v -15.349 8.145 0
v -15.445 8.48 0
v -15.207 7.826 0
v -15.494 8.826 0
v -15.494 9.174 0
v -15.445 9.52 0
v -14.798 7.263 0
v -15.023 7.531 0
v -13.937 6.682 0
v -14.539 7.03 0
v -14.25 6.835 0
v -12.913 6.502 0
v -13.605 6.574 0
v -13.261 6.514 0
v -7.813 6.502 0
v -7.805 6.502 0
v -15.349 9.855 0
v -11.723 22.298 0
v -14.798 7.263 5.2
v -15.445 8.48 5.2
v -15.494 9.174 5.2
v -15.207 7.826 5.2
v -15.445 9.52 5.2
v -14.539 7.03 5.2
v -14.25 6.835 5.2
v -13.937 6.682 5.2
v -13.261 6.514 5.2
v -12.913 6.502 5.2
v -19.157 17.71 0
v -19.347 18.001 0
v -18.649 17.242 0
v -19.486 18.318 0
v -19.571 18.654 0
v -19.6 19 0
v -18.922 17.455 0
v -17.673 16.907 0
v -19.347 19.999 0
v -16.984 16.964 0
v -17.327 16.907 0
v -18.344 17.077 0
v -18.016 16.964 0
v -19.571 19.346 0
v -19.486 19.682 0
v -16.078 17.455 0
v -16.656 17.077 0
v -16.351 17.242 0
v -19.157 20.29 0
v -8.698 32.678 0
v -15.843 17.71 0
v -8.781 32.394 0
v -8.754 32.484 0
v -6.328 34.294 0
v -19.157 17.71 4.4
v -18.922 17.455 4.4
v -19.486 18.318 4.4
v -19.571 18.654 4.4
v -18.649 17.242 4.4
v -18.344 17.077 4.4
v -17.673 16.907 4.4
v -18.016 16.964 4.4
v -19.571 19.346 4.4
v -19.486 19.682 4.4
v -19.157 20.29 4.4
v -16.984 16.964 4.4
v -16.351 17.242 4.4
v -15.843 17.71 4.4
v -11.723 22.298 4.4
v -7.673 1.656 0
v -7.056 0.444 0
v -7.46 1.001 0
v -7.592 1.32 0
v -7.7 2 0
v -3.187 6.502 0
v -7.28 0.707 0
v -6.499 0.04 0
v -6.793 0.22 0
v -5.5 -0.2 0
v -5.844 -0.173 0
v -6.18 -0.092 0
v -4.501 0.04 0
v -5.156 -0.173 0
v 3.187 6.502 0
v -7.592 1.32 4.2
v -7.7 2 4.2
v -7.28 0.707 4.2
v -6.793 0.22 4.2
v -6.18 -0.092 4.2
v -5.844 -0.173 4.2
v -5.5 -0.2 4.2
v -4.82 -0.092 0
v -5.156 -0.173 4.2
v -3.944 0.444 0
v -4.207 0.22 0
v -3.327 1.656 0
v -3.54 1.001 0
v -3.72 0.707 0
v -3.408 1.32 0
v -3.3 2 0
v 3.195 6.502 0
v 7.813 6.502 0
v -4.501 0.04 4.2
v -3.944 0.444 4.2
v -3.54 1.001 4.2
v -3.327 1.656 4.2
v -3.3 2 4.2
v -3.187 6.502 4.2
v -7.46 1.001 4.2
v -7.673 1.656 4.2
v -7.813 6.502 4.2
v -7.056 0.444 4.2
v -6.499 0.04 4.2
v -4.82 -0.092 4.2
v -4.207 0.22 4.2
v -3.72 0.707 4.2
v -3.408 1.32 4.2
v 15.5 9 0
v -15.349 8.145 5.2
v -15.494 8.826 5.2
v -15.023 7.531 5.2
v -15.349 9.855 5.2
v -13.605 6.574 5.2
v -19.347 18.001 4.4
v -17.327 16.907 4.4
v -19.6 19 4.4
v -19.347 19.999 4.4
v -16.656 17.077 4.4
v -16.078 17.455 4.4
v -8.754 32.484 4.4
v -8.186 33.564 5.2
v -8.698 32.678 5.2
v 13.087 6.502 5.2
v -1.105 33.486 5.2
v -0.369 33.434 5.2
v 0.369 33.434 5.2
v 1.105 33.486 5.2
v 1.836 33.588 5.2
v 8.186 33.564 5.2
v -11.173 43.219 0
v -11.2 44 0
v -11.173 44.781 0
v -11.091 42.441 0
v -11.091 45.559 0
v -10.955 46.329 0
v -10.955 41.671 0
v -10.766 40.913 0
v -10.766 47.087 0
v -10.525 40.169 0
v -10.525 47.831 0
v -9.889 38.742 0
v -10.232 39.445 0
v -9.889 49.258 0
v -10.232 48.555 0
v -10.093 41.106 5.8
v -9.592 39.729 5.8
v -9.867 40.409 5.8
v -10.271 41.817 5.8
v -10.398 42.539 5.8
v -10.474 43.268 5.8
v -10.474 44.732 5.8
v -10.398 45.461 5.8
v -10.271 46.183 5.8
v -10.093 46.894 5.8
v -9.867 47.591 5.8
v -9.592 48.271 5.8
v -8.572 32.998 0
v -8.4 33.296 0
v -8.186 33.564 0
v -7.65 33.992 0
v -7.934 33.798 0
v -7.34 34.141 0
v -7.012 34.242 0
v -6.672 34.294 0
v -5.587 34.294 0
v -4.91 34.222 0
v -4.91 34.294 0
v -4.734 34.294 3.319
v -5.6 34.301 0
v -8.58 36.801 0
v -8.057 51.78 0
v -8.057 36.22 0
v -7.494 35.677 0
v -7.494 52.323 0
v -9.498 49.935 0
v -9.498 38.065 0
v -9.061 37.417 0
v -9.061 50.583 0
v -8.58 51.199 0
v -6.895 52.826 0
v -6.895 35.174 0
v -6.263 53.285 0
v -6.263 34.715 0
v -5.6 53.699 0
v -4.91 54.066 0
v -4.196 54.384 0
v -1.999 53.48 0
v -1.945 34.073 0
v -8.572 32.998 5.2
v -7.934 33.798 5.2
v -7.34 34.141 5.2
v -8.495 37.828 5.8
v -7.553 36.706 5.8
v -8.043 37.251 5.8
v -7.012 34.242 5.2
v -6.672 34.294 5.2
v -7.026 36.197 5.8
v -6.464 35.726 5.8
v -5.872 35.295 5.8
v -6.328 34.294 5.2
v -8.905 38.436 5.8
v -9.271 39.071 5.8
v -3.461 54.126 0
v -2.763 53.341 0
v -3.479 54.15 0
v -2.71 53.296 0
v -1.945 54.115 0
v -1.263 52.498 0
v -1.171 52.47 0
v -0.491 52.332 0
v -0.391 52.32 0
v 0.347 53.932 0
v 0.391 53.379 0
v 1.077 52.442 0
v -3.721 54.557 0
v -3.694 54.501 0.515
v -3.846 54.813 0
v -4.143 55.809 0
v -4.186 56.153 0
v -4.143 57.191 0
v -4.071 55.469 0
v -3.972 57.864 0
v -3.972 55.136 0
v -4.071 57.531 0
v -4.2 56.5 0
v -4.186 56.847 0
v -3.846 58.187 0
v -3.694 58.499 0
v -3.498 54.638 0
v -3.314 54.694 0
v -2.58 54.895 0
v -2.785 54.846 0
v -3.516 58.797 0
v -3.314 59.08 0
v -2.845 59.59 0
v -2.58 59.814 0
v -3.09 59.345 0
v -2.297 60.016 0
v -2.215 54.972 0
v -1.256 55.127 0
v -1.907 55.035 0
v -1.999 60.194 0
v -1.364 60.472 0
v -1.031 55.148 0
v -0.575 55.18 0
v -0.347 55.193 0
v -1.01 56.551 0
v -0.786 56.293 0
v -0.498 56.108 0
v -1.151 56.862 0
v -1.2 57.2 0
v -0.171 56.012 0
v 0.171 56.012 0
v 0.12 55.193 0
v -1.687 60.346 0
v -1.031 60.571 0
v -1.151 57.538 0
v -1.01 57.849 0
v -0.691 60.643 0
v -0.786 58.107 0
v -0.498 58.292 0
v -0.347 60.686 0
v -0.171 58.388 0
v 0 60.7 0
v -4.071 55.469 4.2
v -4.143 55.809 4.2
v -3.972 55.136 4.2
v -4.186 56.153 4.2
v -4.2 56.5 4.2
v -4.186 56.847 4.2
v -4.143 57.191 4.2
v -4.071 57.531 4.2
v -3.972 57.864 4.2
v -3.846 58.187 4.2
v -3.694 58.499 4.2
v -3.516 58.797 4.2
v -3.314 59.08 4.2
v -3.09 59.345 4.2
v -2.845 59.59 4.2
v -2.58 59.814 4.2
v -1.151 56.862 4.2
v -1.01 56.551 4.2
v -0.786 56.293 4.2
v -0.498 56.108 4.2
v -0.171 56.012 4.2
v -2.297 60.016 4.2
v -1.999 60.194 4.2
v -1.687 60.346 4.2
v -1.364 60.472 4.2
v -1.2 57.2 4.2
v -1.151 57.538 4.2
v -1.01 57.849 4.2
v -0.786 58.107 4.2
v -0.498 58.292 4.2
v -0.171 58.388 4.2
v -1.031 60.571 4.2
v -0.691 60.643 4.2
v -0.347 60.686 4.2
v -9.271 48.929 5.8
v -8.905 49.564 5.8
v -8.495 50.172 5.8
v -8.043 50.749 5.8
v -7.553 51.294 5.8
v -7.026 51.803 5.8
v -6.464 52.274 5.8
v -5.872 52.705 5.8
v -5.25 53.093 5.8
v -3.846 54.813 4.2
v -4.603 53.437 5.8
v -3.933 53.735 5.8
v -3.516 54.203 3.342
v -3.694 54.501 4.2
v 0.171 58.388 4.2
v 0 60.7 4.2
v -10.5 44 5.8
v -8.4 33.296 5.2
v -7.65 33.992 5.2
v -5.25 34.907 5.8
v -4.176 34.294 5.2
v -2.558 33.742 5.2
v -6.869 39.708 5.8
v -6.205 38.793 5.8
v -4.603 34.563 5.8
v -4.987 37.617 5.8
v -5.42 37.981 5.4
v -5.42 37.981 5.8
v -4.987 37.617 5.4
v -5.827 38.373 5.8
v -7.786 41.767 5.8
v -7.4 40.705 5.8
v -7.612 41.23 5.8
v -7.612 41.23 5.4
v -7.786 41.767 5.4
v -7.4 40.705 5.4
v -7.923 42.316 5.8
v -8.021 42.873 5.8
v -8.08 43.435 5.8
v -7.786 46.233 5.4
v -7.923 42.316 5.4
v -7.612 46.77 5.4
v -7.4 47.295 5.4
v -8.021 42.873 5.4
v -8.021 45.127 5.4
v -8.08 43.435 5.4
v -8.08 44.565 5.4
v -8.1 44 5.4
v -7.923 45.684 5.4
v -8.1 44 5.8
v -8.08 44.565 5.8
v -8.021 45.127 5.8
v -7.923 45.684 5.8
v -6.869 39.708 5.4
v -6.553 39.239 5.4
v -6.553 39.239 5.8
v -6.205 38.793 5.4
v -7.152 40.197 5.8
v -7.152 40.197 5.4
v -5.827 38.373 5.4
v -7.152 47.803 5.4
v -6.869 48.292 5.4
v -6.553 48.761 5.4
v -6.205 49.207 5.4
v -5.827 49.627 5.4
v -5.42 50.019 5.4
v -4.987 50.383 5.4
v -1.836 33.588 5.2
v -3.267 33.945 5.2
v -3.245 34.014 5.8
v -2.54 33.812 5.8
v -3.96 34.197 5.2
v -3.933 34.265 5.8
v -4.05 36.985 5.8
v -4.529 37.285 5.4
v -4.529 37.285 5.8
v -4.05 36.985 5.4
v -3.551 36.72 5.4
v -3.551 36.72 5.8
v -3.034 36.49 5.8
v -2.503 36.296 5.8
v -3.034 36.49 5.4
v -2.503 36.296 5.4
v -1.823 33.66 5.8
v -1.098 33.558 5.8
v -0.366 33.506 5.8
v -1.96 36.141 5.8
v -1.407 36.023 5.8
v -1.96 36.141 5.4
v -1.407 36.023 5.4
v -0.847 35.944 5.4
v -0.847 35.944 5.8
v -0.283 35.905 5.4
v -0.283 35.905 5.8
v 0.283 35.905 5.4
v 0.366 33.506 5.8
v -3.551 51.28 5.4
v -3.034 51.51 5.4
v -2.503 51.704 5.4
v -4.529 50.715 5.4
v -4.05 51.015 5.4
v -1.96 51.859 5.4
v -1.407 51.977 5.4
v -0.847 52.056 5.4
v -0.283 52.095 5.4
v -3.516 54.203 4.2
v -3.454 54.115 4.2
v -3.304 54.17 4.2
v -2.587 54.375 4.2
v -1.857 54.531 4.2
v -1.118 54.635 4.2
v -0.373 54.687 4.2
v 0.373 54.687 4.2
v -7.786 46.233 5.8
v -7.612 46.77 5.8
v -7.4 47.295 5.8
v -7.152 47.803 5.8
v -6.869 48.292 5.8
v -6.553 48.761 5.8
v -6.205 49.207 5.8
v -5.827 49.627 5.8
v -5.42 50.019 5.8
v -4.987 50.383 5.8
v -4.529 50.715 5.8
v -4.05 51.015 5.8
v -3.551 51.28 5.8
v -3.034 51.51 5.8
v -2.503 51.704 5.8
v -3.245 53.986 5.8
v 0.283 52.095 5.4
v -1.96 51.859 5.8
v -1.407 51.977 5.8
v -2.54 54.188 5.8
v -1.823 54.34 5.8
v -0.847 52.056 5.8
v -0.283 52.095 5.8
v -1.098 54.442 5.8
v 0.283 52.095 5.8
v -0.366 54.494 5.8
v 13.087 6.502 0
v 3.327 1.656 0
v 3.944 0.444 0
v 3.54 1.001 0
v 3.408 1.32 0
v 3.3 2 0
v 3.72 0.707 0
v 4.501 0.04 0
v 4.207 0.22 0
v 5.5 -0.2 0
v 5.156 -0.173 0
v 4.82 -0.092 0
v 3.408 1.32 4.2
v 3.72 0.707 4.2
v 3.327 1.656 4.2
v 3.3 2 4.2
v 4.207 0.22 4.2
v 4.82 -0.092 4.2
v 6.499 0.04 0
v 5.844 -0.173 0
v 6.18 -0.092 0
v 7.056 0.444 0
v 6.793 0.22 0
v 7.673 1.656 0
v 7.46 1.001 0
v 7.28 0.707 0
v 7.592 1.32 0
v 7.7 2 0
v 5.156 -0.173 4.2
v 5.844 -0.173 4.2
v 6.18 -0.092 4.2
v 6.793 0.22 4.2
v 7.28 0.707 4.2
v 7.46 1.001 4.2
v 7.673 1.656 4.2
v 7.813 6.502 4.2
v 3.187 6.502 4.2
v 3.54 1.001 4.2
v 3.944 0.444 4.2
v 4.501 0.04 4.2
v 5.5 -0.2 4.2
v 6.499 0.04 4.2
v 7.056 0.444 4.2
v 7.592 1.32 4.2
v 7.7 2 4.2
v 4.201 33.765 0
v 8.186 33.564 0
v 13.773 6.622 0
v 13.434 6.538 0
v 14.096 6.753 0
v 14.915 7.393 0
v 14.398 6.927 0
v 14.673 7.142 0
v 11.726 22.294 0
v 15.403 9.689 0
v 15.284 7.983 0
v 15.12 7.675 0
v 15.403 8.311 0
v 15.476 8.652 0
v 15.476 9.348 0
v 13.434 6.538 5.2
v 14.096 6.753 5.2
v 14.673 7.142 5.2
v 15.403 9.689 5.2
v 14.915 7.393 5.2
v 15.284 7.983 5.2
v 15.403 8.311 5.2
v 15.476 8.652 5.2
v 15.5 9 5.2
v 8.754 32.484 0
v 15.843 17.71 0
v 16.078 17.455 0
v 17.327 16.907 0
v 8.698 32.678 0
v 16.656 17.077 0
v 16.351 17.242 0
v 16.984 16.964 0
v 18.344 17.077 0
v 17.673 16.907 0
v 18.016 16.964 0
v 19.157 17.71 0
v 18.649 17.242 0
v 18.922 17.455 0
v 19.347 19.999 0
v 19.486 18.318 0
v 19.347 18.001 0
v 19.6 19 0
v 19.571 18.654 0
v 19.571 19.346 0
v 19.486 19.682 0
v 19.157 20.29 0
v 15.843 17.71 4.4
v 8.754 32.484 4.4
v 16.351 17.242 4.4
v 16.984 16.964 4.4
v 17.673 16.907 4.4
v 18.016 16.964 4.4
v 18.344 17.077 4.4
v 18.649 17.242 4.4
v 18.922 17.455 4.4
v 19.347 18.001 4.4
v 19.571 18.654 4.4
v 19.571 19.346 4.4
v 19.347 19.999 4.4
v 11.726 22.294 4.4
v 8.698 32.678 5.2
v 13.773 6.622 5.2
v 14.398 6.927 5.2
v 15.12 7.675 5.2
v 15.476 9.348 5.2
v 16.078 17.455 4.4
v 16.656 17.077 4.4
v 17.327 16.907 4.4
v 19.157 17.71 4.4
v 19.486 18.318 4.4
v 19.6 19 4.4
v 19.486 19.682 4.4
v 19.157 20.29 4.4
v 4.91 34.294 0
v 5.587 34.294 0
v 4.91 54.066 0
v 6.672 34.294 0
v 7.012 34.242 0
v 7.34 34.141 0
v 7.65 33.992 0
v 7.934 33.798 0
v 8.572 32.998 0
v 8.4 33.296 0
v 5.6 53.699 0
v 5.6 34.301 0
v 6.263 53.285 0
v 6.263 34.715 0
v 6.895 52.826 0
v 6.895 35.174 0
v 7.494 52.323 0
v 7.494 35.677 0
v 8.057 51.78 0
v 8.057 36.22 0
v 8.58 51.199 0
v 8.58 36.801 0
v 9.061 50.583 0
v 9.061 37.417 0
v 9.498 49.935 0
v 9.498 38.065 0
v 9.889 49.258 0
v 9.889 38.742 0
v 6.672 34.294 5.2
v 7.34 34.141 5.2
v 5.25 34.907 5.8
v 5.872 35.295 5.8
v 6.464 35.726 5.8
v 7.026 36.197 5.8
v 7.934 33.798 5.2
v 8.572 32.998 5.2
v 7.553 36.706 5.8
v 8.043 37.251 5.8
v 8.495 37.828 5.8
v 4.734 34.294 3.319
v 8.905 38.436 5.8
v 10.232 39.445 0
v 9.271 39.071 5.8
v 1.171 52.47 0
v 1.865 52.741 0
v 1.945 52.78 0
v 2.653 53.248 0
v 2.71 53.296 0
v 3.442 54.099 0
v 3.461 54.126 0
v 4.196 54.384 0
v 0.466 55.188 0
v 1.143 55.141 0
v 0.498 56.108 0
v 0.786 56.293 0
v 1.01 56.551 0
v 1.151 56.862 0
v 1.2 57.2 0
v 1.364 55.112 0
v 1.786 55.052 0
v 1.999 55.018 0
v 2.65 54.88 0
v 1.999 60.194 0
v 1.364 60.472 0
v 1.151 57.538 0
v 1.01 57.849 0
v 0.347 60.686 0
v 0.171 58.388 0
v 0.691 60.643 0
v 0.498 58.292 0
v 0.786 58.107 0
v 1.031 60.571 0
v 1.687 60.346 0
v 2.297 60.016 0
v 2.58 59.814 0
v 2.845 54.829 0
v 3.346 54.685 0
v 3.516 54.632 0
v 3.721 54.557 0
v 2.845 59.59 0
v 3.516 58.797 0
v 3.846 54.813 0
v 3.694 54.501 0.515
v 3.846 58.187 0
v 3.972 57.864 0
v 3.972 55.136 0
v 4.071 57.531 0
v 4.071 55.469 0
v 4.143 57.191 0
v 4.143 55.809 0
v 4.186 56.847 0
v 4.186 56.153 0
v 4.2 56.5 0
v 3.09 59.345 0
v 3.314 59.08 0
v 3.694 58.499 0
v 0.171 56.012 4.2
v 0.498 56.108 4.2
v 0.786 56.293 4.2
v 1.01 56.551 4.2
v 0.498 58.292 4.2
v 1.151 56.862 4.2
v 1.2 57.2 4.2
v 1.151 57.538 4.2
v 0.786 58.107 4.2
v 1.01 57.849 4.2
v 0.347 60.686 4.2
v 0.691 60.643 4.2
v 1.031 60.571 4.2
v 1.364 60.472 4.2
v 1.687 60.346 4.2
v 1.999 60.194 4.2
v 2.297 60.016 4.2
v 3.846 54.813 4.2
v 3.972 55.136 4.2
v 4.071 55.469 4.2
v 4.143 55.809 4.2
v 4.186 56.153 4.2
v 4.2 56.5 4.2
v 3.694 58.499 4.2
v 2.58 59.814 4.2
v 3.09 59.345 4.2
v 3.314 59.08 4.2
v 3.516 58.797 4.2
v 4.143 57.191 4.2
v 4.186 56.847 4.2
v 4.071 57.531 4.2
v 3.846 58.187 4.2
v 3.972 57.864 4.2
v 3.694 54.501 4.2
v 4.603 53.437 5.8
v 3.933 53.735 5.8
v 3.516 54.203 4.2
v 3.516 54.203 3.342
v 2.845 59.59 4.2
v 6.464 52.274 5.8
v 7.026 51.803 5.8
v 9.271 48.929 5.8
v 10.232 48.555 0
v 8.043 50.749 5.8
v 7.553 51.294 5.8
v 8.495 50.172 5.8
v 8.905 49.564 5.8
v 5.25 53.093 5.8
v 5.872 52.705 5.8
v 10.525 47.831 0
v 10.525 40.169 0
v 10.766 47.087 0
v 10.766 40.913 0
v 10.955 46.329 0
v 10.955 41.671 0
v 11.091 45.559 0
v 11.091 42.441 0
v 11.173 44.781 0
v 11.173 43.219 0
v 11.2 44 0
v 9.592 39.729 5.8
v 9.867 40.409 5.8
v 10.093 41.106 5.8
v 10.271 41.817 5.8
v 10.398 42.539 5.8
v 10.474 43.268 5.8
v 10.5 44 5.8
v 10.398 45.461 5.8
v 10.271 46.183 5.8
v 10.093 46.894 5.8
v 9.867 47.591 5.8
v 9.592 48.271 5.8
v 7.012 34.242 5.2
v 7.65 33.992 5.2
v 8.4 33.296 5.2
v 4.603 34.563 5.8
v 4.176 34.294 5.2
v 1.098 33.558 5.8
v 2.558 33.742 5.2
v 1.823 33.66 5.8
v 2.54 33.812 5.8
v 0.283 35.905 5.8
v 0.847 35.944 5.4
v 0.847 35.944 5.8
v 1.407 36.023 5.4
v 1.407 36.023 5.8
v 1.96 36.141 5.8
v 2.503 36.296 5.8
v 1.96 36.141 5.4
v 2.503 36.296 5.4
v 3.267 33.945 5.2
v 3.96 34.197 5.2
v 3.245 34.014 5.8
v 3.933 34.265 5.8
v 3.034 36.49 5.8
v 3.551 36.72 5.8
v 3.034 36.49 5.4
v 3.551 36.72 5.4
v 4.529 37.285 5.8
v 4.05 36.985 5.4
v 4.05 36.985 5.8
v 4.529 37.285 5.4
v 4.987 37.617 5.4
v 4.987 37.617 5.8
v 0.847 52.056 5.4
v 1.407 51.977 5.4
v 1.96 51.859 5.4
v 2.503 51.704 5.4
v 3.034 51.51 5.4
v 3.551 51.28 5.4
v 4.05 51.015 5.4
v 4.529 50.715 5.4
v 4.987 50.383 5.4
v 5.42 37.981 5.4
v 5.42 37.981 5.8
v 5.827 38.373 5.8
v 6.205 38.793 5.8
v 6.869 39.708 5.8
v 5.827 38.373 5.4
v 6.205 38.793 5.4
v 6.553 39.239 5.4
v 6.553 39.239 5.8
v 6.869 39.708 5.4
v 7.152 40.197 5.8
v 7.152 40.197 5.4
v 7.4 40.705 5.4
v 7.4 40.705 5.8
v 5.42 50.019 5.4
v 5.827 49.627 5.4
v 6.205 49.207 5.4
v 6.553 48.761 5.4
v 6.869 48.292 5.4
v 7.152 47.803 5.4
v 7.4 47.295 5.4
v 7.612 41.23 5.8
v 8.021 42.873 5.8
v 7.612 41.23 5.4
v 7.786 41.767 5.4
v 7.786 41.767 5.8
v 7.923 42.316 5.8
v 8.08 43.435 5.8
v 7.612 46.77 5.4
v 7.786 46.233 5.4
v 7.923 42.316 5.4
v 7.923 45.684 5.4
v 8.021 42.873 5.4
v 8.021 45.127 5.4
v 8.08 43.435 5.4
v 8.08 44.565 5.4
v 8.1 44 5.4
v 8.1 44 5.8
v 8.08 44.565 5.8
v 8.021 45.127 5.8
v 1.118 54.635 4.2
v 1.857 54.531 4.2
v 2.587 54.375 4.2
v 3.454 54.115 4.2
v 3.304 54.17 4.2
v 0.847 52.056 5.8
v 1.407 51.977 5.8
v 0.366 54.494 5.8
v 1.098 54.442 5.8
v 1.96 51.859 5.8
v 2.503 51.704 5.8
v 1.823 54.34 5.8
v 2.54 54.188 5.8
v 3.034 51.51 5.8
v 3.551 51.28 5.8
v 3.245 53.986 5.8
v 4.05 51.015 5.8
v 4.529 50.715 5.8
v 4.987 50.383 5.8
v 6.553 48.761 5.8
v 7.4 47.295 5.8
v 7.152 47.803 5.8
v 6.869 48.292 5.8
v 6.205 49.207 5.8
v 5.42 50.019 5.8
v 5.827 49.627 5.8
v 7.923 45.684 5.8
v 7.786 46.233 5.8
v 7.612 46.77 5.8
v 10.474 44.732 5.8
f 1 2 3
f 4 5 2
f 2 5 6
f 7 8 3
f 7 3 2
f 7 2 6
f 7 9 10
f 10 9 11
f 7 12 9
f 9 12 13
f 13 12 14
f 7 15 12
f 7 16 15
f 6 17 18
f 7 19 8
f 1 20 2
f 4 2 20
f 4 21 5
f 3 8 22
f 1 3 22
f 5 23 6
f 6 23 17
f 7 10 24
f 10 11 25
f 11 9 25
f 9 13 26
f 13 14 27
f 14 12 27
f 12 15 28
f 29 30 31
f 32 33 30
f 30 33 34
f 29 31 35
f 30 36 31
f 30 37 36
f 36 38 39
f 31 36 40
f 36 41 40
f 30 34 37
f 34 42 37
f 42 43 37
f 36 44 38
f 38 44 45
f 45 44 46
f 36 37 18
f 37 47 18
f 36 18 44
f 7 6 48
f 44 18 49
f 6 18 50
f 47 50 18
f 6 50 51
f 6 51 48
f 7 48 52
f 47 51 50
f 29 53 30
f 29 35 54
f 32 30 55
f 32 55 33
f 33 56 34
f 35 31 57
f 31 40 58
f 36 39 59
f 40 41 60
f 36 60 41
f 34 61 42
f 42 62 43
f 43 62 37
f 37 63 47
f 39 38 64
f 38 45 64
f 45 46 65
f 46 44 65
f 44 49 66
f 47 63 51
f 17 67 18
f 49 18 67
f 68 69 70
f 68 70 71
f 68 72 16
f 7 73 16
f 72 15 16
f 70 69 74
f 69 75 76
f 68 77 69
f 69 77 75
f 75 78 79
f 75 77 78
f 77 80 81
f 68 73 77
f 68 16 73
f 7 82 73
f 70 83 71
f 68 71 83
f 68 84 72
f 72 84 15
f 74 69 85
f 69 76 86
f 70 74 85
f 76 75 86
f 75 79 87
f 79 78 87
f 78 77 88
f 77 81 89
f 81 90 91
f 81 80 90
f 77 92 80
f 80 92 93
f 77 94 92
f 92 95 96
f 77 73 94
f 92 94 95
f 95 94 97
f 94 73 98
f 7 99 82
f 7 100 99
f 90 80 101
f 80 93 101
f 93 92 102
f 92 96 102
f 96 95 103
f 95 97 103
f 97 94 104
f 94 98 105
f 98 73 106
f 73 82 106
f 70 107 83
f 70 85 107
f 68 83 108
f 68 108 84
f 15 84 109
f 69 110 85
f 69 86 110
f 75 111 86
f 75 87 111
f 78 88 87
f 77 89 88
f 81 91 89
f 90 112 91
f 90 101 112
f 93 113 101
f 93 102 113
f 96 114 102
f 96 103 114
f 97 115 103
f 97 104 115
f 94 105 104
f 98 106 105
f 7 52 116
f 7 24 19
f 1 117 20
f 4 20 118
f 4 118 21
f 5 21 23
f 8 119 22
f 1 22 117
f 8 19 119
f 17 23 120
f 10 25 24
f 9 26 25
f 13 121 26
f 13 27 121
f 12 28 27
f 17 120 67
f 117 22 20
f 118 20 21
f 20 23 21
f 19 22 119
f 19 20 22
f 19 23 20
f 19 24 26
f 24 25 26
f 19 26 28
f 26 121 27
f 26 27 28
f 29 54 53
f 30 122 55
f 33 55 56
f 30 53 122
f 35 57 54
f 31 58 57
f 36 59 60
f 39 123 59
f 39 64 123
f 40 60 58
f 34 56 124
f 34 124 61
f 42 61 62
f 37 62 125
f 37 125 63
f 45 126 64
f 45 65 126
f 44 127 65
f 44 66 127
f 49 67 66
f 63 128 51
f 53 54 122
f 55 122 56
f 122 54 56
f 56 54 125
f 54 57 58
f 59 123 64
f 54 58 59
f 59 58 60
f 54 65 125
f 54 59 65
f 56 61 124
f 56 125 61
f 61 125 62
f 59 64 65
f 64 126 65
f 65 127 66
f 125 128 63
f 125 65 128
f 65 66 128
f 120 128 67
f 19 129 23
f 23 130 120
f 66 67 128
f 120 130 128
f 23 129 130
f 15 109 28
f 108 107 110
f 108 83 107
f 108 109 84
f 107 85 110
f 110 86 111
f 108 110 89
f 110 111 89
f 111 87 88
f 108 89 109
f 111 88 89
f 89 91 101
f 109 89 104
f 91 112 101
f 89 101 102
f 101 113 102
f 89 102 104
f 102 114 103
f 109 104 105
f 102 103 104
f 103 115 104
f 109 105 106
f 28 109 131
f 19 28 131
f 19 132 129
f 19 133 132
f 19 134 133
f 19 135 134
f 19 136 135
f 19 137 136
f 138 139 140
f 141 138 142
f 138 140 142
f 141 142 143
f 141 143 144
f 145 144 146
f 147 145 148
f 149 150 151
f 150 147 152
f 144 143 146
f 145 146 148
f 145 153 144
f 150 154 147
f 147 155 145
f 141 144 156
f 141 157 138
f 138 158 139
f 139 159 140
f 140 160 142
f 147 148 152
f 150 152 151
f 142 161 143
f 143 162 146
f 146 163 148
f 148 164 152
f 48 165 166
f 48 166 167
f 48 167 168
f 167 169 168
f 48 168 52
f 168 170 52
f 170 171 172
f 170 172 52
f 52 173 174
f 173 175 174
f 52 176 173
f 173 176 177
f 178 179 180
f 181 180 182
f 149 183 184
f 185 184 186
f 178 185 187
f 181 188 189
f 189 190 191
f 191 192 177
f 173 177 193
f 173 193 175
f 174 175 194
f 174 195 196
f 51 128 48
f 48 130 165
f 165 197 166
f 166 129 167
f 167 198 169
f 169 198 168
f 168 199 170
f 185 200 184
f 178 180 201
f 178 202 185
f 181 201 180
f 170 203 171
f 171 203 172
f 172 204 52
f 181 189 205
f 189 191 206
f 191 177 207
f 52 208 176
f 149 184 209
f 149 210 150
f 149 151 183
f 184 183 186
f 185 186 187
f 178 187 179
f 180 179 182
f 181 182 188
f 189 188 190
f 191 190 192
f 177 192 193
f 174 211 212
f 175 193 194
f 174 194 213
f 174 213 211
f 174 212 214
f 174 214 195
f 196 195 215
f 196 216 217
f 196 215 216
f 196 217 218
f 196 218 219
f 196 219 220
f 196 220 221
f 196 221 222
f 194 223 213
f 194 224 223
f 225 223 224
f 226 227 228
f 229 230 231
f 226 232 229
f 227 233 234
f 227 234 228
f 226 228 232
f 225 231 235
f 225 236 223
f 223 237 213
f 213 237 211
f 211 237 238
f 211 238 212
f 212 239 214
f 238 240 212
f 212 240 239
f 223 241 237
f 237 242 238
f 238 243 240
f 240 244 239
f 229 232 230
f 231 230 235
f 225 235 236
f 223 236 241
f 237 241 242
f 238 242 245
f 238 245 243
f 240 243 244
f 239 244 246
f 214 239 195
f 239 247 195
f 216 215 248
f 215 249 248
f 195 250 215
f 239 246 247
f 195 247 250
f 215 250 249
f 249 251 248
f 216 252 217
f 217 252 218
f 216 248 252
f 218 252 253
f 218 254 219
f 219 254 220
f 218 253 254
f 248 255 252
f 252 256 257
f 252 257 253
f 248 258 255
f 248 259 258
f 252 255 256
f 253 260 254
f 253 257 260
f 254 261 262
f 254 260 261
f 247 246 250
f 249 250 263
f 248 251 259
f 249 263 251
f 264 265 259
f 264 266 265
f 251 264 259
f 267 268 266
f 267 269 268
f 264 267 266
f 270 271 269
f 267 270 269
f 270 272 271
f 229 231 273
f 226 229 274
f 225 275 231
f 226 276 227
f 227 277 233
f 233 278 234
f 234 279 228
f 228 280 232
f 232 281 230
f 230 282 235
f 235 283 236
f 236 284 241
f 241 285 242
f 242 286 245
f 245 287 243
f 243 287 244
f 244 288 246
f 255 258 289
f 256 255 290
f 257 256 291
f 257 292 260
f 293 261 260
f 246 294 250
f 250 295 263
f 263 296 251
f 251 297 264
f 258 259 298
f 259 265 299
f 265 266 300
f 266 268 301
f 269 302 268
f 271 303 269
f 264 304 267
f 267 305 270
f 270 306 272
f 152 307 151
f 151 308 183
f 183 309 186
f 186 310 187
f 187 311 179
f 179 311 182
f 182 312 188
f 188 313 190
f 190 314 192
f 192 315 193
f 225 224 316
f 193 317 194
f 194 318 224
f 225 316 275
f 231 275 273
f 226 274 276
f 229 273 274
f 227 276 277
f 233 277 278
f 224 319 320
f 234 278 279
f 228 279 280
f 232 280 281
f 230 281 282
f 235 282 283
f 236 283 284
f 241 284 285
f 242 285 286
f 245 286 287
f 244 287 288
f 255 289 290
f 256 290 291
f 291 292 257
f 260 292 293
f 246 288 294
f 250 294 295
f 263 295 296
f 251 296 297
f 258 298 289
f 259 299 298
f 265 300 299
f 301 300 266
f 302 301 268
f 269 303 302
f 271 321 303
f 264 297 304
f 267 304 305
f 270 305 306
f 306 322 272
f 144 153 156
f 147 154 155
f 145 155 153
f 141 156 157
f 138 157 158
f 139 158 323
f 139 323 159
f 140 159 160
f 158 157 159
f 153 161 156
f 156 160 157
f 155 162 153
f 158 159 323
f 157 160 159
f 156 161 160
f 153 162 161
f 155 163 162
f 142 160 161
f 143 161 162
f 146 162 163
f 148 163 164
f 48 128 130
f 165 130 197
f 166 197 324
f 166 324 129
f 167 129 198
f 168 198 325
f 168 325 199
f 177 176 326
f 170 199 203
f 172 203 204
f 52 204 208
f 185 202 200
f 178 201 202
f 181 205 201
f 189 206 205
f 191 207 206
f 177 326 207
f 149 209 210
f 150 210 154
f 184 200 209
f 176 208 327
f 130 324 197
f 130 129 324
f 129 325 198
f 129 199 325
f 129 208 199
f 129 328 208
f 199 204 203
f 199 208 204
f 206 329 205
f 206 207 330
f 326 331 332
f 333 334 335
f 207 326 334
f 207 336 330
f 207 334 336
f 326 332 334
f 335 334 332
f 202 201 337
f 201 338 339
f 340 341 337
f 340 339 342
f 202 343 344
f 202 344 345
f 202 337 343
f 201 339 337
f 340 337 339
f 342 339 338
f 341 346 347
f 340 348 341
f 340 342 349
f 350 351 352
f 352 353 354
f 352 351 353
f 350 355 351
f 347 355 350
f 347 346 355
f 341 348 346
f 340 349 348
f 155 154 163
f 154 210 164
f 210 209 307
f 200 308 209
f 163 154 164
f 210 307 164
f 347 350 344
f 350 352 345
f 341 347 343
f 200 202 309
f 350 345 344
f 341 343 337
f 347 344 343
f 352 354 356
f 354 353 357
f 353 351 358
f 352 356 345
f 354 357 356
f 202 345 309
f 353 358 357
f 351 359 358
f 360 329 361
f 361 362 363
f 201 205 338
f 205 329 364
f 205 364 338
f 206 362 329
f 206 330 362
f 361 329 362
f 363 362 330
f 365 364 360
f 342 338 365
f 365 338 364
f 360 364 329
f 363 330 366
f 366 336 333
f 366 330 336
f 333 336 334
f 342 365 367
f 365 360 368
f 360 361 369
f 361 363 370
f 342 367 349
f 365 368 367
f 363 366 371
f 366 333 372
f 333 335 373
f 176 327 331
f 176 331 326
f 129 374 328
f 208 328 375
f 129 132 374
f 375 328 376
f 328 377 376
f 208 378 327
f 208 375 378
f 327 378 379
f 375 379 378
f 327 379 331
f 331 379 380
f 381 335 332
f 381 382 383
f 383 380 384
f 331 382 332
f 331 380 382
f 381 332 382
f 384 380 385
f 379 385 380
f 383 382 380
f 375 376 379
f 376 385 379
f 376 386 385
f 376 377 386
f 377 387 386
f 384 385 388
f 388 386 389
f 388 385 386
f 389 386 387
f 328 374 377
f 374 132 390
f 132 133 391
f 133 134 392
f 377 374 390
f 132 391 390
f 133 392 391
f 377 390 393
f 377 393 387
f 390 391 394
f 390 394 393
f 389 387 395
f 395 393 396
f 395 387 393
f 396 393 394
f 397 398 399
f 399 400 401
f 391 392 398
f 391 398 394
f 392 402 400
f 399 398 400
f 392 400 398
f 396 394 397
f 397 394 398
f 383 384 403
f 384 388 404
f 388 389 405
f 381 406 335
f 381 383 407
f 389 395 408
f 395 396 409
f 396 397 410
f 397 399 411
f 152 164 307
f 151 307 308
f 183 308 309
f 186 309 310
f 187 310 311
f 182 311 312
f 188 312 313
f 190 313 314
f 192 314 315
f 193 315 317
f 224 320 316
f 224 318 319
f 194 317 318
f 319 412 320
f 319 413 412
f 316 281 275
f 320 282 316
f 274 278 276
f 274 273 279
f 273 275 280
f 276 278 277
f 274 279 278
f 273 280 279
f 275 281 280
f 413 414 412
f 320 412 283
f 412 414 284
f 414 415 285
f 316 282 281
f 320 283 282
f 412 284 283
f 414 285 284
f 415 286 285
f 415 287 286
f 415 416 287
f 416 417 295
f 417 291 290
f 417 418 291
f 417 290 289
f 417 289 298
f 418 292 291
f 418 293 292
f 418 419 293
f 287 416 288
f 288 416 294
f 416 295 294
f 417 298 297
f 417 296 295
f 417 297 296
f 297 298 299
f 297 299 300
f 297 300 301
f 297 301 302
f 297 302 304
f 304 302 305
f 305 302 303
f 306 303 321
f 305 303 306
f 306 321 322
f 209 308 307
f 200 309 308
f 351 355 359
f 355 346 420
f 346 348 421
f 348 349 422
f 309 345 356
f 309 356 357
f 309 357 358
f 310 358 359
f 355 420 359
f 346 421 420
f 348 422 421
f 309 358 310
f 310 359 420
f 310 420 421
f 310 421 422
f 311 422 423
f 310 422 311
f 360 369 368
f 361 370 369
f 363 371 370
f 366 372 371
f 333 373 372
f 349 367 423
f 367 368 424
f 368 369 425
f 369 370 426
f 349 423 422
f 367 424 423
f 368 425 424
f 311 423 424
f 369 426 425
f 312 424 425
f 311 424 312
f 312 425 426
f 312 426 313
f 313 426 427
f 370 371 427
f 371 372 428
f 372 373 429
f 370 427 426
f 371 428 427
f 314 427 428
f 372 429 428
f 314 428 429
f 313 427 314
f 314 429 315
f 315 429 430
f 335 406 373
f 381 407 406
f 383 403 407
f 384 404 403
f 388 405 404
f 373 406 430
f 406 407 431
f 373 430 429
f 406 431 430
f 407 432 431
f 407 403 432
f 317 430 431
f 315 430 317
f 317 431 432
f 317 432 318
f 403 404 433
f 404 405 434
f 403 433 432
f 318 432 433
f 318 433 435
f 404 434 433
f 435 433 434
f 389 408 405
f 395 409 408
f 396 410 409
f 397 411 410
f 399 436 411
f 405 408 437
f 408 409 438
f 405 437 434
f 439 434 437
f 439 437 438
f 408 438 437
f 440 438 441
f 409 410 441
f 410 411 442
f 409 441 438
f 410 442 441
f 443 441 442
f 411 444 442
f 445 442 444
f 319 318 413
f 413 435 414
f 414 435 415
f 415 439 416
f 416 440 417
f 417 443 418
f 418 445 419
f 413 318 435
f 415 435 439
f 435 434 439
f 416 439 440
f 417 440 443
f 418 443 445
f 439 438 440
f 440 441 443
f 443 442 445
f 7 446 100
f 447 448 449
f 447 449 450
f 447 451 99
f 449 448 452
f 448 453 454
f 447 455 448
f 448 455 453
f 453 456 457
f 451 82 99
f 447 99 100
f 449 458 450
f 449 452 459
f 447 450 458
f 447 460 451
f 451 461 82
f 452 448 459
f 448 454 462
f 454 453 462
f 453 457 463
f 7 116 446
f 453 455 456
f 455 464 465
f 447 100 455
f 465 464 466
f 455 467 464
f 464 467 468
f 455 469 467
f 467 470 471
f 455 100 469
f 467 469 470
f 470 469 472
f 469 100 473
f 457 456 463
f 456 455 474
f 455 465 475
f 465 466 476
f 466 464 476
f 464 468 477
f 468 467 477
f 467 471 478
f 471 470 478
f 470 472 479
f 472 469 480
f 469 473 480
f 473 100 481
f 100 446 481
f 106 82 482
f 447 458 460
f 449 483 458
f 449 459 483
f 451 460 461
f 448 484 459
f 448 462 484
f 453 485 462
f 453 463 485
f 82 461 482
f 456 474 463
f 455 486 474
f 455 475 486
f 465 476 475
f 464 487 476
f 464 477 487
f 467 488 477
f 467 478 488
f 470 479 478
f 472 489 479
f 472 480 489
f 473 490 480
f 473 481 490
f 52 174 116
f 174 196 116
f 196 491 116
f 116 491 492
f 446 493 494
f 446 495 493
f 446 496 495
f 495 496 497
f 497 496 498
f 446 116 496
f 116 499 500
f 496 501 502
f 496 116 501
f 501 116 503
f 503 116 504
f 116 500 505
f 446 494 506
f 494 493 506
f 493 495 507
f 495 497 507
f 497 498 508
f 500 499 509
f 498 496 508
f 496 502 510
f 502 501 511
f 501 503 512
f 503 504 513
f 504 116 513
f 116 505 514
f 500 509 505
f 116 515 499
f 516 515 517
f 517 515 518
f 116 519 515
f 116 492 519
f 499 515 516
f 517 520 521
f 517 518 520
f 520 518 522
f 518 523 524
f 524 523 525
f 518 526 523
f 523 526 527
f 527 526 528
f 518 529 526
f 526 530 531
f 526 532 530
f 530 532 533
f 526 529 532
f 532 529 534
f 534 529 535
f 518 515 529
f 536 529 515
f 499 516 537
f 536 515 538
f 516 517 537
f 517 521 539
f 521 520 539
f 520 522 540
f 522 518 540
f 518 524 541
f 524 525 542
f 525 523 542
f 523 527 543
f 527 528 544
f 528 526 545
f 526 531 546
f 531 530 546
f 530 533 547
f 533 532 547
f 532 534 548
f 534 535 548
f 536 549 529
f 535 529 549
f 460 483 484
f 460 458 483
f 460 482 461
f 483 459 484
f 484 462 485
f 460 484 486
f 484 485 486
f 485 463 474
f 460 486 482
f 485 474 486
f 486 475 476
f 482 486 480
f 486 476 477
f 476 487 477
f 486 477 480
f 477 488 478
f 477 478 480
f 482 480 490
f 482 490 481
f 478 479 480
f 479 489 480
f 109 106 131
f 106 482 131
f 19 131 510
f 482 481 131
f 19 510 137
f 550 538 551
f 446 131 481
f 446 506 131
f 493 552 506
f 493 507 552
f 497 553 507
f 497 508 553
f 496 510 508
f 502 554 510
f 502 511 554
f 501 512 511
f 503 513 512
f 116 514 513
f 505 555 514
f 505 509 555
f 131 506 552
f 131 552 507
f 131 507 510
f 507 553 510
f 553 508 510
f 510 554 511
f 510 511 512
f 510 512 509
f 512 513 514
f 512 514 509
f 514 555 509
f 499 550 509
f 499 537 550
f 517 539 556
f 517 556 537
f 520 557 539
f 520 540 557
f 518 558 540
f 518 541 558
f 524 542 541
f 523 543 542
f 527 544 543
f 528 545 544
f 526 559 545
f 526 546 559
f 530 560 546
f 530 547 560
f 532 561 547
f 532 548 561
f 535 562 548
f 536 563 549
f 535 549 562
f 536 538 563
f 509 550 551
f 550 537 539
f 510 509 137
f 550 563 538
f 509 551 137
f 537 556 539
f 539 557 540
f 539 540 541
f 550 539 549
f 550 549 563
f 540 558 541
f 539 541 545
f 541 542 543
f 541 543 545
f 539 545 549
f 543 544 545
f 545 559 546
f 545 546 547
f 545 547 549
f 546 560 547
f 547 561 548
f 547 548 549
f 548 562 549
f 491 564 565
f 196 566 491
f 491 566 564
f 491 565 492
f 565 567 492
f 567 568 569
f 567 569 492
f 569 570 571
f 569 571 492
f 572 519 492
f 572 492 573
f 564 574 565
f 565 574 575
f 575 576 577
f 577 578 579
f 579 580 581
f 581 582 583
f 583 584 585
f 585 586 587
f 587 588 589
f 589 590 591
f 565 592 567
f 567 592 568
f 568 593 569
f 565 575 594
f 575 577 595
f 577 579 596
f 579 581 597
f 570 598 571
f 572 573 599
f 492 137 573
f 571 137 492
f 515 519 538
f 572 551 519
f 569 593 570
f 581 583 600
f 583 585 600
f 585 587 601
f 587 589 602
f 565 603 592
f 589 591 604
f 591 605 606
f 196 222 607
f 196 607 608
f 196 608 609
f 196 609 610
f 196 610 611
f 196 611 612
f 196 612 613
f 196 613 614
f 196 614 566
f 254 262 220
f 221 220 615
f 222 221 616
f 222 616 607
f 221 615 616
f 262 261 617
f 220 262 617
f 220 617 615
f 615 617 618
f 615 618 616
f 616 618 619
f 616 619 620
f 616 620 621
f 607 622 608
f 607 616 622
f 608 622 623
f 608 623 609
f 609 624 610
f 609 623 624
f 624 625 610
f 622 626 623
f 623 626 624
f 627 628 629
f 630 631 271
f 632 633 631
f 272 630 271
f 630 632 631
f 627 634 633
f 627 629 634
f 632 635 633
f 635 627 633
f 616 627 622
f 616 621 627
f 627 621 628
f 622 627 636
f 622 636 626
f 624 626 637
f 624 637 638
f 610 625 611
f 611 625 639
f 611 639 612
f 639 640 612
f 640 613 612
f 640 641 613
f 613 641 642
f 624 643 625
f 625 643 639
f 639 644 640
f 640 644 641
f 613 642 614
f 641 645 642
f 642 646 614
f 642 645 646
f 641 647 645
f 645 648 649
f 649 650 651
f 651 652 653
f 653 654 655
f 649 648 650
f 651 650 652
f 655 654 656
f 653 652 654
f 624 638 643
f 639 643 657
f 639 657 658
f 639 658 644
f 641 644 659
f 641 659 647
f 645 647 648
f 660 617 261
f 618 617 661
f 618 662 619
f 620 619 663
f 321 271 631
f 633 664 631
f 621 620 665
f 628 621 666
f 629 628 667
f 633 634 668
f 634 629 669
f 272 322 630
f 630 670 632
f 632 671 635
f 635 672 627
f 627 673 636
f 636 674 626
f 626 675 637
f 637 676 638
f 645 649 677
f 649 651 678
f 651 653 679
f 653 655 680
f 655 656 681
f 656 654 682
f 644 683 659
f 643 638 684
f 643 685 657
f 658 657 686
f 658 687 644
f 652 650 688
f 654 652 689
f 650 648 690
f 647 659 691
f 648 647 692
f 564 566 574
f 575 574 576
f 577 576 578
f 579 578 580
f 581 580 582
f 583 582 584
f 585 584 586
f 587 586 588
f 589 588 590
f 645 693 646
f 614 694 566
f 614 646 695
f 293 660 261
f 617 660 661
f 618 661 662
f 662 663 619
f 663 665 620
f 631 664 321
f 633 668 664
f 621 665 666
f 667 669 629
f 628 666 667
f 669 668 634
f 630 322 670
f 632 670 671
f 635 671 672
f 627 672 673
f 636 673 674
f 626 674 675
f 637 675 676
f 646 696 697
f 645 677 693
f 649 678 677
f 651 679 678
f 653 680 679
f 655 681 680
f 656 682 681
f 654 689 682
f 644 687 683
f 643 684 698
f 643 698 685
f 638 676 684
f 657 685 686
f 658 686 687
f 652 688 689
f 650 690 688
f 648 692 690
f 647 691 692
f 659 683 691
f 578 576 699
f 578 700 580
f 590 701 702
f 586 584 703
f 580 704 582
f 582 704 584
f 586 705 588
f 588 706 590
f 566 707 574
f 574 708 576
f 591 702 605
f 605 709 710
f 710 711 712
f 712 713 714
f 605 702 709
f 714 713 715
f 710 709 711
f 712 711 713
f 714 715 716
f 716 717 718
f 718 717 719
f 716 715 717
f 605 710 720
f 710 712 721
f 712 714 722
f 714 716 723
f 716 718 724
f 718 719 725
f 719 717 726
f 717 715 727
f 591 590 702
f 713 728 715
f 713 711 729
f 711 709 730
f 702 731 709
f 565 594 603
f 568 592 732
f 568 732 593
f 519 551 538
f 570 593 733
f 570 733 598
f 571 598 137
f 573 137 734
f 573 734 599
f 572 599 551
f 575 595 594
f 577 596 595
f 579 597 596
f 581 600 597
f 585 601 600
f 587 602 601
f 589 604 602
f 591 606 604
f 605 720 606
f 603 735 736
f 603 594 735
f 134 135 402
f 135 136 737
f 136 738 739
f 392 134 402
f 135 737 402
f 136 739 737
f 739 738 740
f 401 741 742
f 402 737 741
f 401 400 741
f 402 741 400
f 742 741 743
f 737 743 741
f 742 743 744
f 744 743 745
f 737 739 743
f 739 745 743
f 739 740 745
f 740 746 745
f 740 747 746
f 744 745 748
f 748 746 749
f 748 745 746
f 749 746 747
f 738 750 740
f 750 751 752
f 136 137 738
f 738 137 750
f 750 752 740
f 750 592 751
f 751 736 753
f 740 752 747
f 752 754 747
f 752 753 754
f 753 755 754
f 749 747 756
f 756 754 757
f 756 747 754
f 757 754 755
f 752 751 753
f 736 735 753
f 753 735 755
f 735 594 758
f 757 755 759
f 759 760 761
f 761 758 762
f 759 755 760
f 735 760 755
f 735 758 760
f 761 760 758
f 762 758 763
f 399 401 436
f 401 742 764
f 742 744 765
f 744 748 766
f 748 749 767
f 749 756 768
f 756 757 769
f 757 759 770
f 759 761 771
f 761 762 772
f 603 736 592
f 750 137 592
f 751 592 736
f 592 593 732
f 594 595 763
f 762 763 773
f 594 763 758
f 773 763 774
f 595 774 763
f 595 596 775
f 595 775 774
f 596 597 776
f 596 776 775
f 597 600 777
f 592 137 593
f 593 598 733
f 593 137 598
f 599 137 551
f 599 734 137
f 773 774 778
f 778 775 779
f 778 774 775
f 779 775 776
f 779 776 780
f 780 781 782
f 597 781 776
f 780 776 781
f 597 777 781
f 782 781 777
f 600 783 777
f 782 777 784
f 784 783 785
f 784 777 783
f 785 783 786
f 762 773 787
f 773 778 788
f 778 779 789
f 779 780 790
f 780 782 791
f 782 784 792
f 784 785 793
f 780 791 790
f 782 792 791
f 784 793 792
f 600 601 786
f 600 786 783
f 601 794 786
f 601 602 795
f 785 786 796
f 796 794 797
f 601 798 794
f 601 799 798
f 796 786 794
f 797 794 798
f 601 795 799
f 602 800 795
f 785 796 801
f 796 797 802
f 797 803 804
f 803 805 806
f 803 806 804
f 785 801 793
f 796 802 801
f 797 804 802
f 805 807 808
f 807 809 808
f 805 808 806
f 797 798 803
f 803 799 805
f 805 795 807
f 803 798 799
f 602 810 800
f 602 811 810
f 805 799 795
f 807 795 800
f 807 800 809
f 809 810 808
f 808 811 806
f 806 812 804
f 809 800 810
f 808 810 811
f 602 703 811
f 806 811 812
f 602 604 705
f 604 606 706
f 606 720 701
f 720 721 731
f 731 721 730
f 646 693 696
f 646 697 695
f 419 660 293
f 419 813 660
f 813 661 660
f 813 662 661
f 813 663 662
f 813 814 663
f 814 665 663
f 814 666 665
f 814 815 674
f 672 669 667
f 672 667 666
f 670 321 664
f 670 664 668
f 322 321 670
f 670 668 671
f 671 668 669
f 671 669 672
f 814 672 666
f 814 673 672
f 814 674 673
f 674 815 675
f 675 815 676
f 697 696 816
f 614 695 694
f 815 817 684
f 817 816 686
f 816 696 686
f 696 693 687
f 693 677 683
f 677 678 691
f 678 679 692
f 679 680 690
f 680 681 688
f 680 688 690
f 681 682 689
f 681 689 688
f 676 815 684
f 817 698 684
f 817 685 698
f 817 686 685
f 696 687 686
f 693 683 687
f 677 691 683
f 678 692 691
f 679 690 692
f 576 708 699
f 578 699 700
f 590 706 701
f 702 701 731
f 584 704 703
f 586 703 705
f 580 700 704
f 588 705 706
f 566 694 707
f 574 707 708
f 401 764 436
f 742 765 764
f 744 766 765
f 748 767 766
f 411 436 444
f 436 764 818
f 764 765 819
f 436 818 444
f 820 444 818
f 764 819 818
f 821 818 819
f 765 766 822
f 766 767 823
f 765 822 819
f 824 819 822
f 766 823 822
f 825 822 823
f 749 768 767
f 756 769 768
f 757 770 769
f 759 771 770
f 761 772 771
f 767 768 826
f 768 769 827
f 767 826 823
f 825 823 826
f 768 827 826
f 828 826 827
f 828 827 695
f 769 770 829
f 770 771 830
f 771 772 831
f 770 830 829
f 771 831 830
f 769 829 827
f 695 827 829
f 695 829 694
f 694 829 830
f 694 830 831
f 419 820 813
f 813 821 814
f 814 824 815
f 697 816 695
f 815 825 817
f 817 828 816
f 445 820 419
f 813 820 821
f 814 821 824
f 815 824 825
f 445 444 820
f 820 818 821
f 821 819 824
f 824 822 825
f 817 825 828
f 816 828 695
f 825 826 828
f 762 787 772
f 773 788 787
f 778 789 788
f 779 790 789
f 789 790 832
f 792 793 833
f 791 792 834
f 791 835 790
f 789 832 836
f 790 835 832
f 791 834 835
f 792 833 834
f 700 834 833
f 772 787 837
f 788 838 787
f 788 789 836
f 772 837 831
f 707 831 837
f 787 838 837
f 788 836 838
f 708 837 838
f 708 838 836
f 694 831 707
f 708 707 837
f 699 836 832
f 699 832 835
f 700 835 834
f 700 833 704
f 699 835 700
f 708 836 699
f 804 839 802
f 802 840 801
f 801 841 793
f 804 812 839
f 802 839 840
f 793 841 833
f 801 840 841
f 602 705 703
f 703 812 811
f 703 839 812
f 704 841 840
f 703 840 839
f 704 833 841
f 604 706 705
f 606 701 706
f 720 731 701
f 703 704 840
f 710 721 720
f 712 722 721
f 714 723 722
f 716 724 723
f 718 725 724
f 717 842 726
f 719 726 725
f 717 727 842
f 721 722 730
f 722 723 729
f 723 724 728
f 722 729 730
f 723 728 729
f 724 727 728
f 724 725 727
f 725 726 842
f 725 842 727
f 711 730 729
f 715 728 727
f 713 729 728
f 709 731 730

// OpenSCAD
// Hauntology Tabletop Print Kit — Prop #12: Rattle Prop (Option C: Victorian Rag Doll)
// Colour: Bone (#e9e4d8, warm white)
// Size: 42 W x 62 H x 6.4 D mm (weight ~9.5 g < 30 g)
// Sticker details: Recessed 16 mm circular face sticker pocket on head
// Print orientation: Flat on back (Z = 0), zero supports.

include <_common.scad>

module prop_12_doll() {
  difference() {
    union() {
      // 1. Flared Bell Skirt & Bodice (Y = 8..34, Z = 0..5.2)
      hull() {
        translate([-13.0, 9.0, 0]) cylinder(h = 5.2, d = 5.0);
        translate([ 13.0, 9.0, 0]) cylinder(h = 5.2, d = 5.0);
        translate([-6.5, 32.0, 0]) cylinder(h = 5.2, d = 4.6);
        translate([ 6.5, 32.0, 0]) cylinder(h = 5.2, d = 4.6);
      }

      // 2. Two Lower Legs & Boots (Y = 0..10)
      for (sx = [-5.5, 5.5]) {
        hull() {
          translate([sx, 2.0, 0]) cylinder(h = 4.2, d = 4.4);
          translate([sx, 10.0, 0]) cylinder(h = 4.2, d = 4.8);
        }
      }

      // 3. Outstretched Rag Arms (Y = 18..32)
      for (sx = [-1, 1]) {
        hull() {
          translate([sx * 7.0, 31.0, 0]) cylinder(h = 4.4, d = 4.6);
          translate([sx * 17.5, 19.0, 0]) cylinder(h = 4.4, d = 4.2);
        }
      }

      // 4. Porcelain-Style Head with Bonnet Rim (Y = 44, diameter 22 mm)
      translate([0, 44.0, 0])
        cylinder(h = 5.8, d1 = 22.4, d2 = 21.0);

      // 5. Top Suspension Loop at Crown (Y = 56..60)
      translate([0, 56.5, 0])
        cylinder(h = 4.2, d = 8.4);
    }

    // 6. Recessed 0.4 mm Circular Face Sticker Pocket (16.2 mm dia)
    translate([0, 44.0, 5.8 - sticker_depth])
      cylinder(h = sticker_depth + 0.6, d = 16.2);

    // 7. Crown Thread Tie Hole (2.4 mm ID)
    translate([0, 57.2, -0.5])
      cylinder(h = 6.0, d = 2.4);
  }
}

color(col_bone) prop_12_doll();
